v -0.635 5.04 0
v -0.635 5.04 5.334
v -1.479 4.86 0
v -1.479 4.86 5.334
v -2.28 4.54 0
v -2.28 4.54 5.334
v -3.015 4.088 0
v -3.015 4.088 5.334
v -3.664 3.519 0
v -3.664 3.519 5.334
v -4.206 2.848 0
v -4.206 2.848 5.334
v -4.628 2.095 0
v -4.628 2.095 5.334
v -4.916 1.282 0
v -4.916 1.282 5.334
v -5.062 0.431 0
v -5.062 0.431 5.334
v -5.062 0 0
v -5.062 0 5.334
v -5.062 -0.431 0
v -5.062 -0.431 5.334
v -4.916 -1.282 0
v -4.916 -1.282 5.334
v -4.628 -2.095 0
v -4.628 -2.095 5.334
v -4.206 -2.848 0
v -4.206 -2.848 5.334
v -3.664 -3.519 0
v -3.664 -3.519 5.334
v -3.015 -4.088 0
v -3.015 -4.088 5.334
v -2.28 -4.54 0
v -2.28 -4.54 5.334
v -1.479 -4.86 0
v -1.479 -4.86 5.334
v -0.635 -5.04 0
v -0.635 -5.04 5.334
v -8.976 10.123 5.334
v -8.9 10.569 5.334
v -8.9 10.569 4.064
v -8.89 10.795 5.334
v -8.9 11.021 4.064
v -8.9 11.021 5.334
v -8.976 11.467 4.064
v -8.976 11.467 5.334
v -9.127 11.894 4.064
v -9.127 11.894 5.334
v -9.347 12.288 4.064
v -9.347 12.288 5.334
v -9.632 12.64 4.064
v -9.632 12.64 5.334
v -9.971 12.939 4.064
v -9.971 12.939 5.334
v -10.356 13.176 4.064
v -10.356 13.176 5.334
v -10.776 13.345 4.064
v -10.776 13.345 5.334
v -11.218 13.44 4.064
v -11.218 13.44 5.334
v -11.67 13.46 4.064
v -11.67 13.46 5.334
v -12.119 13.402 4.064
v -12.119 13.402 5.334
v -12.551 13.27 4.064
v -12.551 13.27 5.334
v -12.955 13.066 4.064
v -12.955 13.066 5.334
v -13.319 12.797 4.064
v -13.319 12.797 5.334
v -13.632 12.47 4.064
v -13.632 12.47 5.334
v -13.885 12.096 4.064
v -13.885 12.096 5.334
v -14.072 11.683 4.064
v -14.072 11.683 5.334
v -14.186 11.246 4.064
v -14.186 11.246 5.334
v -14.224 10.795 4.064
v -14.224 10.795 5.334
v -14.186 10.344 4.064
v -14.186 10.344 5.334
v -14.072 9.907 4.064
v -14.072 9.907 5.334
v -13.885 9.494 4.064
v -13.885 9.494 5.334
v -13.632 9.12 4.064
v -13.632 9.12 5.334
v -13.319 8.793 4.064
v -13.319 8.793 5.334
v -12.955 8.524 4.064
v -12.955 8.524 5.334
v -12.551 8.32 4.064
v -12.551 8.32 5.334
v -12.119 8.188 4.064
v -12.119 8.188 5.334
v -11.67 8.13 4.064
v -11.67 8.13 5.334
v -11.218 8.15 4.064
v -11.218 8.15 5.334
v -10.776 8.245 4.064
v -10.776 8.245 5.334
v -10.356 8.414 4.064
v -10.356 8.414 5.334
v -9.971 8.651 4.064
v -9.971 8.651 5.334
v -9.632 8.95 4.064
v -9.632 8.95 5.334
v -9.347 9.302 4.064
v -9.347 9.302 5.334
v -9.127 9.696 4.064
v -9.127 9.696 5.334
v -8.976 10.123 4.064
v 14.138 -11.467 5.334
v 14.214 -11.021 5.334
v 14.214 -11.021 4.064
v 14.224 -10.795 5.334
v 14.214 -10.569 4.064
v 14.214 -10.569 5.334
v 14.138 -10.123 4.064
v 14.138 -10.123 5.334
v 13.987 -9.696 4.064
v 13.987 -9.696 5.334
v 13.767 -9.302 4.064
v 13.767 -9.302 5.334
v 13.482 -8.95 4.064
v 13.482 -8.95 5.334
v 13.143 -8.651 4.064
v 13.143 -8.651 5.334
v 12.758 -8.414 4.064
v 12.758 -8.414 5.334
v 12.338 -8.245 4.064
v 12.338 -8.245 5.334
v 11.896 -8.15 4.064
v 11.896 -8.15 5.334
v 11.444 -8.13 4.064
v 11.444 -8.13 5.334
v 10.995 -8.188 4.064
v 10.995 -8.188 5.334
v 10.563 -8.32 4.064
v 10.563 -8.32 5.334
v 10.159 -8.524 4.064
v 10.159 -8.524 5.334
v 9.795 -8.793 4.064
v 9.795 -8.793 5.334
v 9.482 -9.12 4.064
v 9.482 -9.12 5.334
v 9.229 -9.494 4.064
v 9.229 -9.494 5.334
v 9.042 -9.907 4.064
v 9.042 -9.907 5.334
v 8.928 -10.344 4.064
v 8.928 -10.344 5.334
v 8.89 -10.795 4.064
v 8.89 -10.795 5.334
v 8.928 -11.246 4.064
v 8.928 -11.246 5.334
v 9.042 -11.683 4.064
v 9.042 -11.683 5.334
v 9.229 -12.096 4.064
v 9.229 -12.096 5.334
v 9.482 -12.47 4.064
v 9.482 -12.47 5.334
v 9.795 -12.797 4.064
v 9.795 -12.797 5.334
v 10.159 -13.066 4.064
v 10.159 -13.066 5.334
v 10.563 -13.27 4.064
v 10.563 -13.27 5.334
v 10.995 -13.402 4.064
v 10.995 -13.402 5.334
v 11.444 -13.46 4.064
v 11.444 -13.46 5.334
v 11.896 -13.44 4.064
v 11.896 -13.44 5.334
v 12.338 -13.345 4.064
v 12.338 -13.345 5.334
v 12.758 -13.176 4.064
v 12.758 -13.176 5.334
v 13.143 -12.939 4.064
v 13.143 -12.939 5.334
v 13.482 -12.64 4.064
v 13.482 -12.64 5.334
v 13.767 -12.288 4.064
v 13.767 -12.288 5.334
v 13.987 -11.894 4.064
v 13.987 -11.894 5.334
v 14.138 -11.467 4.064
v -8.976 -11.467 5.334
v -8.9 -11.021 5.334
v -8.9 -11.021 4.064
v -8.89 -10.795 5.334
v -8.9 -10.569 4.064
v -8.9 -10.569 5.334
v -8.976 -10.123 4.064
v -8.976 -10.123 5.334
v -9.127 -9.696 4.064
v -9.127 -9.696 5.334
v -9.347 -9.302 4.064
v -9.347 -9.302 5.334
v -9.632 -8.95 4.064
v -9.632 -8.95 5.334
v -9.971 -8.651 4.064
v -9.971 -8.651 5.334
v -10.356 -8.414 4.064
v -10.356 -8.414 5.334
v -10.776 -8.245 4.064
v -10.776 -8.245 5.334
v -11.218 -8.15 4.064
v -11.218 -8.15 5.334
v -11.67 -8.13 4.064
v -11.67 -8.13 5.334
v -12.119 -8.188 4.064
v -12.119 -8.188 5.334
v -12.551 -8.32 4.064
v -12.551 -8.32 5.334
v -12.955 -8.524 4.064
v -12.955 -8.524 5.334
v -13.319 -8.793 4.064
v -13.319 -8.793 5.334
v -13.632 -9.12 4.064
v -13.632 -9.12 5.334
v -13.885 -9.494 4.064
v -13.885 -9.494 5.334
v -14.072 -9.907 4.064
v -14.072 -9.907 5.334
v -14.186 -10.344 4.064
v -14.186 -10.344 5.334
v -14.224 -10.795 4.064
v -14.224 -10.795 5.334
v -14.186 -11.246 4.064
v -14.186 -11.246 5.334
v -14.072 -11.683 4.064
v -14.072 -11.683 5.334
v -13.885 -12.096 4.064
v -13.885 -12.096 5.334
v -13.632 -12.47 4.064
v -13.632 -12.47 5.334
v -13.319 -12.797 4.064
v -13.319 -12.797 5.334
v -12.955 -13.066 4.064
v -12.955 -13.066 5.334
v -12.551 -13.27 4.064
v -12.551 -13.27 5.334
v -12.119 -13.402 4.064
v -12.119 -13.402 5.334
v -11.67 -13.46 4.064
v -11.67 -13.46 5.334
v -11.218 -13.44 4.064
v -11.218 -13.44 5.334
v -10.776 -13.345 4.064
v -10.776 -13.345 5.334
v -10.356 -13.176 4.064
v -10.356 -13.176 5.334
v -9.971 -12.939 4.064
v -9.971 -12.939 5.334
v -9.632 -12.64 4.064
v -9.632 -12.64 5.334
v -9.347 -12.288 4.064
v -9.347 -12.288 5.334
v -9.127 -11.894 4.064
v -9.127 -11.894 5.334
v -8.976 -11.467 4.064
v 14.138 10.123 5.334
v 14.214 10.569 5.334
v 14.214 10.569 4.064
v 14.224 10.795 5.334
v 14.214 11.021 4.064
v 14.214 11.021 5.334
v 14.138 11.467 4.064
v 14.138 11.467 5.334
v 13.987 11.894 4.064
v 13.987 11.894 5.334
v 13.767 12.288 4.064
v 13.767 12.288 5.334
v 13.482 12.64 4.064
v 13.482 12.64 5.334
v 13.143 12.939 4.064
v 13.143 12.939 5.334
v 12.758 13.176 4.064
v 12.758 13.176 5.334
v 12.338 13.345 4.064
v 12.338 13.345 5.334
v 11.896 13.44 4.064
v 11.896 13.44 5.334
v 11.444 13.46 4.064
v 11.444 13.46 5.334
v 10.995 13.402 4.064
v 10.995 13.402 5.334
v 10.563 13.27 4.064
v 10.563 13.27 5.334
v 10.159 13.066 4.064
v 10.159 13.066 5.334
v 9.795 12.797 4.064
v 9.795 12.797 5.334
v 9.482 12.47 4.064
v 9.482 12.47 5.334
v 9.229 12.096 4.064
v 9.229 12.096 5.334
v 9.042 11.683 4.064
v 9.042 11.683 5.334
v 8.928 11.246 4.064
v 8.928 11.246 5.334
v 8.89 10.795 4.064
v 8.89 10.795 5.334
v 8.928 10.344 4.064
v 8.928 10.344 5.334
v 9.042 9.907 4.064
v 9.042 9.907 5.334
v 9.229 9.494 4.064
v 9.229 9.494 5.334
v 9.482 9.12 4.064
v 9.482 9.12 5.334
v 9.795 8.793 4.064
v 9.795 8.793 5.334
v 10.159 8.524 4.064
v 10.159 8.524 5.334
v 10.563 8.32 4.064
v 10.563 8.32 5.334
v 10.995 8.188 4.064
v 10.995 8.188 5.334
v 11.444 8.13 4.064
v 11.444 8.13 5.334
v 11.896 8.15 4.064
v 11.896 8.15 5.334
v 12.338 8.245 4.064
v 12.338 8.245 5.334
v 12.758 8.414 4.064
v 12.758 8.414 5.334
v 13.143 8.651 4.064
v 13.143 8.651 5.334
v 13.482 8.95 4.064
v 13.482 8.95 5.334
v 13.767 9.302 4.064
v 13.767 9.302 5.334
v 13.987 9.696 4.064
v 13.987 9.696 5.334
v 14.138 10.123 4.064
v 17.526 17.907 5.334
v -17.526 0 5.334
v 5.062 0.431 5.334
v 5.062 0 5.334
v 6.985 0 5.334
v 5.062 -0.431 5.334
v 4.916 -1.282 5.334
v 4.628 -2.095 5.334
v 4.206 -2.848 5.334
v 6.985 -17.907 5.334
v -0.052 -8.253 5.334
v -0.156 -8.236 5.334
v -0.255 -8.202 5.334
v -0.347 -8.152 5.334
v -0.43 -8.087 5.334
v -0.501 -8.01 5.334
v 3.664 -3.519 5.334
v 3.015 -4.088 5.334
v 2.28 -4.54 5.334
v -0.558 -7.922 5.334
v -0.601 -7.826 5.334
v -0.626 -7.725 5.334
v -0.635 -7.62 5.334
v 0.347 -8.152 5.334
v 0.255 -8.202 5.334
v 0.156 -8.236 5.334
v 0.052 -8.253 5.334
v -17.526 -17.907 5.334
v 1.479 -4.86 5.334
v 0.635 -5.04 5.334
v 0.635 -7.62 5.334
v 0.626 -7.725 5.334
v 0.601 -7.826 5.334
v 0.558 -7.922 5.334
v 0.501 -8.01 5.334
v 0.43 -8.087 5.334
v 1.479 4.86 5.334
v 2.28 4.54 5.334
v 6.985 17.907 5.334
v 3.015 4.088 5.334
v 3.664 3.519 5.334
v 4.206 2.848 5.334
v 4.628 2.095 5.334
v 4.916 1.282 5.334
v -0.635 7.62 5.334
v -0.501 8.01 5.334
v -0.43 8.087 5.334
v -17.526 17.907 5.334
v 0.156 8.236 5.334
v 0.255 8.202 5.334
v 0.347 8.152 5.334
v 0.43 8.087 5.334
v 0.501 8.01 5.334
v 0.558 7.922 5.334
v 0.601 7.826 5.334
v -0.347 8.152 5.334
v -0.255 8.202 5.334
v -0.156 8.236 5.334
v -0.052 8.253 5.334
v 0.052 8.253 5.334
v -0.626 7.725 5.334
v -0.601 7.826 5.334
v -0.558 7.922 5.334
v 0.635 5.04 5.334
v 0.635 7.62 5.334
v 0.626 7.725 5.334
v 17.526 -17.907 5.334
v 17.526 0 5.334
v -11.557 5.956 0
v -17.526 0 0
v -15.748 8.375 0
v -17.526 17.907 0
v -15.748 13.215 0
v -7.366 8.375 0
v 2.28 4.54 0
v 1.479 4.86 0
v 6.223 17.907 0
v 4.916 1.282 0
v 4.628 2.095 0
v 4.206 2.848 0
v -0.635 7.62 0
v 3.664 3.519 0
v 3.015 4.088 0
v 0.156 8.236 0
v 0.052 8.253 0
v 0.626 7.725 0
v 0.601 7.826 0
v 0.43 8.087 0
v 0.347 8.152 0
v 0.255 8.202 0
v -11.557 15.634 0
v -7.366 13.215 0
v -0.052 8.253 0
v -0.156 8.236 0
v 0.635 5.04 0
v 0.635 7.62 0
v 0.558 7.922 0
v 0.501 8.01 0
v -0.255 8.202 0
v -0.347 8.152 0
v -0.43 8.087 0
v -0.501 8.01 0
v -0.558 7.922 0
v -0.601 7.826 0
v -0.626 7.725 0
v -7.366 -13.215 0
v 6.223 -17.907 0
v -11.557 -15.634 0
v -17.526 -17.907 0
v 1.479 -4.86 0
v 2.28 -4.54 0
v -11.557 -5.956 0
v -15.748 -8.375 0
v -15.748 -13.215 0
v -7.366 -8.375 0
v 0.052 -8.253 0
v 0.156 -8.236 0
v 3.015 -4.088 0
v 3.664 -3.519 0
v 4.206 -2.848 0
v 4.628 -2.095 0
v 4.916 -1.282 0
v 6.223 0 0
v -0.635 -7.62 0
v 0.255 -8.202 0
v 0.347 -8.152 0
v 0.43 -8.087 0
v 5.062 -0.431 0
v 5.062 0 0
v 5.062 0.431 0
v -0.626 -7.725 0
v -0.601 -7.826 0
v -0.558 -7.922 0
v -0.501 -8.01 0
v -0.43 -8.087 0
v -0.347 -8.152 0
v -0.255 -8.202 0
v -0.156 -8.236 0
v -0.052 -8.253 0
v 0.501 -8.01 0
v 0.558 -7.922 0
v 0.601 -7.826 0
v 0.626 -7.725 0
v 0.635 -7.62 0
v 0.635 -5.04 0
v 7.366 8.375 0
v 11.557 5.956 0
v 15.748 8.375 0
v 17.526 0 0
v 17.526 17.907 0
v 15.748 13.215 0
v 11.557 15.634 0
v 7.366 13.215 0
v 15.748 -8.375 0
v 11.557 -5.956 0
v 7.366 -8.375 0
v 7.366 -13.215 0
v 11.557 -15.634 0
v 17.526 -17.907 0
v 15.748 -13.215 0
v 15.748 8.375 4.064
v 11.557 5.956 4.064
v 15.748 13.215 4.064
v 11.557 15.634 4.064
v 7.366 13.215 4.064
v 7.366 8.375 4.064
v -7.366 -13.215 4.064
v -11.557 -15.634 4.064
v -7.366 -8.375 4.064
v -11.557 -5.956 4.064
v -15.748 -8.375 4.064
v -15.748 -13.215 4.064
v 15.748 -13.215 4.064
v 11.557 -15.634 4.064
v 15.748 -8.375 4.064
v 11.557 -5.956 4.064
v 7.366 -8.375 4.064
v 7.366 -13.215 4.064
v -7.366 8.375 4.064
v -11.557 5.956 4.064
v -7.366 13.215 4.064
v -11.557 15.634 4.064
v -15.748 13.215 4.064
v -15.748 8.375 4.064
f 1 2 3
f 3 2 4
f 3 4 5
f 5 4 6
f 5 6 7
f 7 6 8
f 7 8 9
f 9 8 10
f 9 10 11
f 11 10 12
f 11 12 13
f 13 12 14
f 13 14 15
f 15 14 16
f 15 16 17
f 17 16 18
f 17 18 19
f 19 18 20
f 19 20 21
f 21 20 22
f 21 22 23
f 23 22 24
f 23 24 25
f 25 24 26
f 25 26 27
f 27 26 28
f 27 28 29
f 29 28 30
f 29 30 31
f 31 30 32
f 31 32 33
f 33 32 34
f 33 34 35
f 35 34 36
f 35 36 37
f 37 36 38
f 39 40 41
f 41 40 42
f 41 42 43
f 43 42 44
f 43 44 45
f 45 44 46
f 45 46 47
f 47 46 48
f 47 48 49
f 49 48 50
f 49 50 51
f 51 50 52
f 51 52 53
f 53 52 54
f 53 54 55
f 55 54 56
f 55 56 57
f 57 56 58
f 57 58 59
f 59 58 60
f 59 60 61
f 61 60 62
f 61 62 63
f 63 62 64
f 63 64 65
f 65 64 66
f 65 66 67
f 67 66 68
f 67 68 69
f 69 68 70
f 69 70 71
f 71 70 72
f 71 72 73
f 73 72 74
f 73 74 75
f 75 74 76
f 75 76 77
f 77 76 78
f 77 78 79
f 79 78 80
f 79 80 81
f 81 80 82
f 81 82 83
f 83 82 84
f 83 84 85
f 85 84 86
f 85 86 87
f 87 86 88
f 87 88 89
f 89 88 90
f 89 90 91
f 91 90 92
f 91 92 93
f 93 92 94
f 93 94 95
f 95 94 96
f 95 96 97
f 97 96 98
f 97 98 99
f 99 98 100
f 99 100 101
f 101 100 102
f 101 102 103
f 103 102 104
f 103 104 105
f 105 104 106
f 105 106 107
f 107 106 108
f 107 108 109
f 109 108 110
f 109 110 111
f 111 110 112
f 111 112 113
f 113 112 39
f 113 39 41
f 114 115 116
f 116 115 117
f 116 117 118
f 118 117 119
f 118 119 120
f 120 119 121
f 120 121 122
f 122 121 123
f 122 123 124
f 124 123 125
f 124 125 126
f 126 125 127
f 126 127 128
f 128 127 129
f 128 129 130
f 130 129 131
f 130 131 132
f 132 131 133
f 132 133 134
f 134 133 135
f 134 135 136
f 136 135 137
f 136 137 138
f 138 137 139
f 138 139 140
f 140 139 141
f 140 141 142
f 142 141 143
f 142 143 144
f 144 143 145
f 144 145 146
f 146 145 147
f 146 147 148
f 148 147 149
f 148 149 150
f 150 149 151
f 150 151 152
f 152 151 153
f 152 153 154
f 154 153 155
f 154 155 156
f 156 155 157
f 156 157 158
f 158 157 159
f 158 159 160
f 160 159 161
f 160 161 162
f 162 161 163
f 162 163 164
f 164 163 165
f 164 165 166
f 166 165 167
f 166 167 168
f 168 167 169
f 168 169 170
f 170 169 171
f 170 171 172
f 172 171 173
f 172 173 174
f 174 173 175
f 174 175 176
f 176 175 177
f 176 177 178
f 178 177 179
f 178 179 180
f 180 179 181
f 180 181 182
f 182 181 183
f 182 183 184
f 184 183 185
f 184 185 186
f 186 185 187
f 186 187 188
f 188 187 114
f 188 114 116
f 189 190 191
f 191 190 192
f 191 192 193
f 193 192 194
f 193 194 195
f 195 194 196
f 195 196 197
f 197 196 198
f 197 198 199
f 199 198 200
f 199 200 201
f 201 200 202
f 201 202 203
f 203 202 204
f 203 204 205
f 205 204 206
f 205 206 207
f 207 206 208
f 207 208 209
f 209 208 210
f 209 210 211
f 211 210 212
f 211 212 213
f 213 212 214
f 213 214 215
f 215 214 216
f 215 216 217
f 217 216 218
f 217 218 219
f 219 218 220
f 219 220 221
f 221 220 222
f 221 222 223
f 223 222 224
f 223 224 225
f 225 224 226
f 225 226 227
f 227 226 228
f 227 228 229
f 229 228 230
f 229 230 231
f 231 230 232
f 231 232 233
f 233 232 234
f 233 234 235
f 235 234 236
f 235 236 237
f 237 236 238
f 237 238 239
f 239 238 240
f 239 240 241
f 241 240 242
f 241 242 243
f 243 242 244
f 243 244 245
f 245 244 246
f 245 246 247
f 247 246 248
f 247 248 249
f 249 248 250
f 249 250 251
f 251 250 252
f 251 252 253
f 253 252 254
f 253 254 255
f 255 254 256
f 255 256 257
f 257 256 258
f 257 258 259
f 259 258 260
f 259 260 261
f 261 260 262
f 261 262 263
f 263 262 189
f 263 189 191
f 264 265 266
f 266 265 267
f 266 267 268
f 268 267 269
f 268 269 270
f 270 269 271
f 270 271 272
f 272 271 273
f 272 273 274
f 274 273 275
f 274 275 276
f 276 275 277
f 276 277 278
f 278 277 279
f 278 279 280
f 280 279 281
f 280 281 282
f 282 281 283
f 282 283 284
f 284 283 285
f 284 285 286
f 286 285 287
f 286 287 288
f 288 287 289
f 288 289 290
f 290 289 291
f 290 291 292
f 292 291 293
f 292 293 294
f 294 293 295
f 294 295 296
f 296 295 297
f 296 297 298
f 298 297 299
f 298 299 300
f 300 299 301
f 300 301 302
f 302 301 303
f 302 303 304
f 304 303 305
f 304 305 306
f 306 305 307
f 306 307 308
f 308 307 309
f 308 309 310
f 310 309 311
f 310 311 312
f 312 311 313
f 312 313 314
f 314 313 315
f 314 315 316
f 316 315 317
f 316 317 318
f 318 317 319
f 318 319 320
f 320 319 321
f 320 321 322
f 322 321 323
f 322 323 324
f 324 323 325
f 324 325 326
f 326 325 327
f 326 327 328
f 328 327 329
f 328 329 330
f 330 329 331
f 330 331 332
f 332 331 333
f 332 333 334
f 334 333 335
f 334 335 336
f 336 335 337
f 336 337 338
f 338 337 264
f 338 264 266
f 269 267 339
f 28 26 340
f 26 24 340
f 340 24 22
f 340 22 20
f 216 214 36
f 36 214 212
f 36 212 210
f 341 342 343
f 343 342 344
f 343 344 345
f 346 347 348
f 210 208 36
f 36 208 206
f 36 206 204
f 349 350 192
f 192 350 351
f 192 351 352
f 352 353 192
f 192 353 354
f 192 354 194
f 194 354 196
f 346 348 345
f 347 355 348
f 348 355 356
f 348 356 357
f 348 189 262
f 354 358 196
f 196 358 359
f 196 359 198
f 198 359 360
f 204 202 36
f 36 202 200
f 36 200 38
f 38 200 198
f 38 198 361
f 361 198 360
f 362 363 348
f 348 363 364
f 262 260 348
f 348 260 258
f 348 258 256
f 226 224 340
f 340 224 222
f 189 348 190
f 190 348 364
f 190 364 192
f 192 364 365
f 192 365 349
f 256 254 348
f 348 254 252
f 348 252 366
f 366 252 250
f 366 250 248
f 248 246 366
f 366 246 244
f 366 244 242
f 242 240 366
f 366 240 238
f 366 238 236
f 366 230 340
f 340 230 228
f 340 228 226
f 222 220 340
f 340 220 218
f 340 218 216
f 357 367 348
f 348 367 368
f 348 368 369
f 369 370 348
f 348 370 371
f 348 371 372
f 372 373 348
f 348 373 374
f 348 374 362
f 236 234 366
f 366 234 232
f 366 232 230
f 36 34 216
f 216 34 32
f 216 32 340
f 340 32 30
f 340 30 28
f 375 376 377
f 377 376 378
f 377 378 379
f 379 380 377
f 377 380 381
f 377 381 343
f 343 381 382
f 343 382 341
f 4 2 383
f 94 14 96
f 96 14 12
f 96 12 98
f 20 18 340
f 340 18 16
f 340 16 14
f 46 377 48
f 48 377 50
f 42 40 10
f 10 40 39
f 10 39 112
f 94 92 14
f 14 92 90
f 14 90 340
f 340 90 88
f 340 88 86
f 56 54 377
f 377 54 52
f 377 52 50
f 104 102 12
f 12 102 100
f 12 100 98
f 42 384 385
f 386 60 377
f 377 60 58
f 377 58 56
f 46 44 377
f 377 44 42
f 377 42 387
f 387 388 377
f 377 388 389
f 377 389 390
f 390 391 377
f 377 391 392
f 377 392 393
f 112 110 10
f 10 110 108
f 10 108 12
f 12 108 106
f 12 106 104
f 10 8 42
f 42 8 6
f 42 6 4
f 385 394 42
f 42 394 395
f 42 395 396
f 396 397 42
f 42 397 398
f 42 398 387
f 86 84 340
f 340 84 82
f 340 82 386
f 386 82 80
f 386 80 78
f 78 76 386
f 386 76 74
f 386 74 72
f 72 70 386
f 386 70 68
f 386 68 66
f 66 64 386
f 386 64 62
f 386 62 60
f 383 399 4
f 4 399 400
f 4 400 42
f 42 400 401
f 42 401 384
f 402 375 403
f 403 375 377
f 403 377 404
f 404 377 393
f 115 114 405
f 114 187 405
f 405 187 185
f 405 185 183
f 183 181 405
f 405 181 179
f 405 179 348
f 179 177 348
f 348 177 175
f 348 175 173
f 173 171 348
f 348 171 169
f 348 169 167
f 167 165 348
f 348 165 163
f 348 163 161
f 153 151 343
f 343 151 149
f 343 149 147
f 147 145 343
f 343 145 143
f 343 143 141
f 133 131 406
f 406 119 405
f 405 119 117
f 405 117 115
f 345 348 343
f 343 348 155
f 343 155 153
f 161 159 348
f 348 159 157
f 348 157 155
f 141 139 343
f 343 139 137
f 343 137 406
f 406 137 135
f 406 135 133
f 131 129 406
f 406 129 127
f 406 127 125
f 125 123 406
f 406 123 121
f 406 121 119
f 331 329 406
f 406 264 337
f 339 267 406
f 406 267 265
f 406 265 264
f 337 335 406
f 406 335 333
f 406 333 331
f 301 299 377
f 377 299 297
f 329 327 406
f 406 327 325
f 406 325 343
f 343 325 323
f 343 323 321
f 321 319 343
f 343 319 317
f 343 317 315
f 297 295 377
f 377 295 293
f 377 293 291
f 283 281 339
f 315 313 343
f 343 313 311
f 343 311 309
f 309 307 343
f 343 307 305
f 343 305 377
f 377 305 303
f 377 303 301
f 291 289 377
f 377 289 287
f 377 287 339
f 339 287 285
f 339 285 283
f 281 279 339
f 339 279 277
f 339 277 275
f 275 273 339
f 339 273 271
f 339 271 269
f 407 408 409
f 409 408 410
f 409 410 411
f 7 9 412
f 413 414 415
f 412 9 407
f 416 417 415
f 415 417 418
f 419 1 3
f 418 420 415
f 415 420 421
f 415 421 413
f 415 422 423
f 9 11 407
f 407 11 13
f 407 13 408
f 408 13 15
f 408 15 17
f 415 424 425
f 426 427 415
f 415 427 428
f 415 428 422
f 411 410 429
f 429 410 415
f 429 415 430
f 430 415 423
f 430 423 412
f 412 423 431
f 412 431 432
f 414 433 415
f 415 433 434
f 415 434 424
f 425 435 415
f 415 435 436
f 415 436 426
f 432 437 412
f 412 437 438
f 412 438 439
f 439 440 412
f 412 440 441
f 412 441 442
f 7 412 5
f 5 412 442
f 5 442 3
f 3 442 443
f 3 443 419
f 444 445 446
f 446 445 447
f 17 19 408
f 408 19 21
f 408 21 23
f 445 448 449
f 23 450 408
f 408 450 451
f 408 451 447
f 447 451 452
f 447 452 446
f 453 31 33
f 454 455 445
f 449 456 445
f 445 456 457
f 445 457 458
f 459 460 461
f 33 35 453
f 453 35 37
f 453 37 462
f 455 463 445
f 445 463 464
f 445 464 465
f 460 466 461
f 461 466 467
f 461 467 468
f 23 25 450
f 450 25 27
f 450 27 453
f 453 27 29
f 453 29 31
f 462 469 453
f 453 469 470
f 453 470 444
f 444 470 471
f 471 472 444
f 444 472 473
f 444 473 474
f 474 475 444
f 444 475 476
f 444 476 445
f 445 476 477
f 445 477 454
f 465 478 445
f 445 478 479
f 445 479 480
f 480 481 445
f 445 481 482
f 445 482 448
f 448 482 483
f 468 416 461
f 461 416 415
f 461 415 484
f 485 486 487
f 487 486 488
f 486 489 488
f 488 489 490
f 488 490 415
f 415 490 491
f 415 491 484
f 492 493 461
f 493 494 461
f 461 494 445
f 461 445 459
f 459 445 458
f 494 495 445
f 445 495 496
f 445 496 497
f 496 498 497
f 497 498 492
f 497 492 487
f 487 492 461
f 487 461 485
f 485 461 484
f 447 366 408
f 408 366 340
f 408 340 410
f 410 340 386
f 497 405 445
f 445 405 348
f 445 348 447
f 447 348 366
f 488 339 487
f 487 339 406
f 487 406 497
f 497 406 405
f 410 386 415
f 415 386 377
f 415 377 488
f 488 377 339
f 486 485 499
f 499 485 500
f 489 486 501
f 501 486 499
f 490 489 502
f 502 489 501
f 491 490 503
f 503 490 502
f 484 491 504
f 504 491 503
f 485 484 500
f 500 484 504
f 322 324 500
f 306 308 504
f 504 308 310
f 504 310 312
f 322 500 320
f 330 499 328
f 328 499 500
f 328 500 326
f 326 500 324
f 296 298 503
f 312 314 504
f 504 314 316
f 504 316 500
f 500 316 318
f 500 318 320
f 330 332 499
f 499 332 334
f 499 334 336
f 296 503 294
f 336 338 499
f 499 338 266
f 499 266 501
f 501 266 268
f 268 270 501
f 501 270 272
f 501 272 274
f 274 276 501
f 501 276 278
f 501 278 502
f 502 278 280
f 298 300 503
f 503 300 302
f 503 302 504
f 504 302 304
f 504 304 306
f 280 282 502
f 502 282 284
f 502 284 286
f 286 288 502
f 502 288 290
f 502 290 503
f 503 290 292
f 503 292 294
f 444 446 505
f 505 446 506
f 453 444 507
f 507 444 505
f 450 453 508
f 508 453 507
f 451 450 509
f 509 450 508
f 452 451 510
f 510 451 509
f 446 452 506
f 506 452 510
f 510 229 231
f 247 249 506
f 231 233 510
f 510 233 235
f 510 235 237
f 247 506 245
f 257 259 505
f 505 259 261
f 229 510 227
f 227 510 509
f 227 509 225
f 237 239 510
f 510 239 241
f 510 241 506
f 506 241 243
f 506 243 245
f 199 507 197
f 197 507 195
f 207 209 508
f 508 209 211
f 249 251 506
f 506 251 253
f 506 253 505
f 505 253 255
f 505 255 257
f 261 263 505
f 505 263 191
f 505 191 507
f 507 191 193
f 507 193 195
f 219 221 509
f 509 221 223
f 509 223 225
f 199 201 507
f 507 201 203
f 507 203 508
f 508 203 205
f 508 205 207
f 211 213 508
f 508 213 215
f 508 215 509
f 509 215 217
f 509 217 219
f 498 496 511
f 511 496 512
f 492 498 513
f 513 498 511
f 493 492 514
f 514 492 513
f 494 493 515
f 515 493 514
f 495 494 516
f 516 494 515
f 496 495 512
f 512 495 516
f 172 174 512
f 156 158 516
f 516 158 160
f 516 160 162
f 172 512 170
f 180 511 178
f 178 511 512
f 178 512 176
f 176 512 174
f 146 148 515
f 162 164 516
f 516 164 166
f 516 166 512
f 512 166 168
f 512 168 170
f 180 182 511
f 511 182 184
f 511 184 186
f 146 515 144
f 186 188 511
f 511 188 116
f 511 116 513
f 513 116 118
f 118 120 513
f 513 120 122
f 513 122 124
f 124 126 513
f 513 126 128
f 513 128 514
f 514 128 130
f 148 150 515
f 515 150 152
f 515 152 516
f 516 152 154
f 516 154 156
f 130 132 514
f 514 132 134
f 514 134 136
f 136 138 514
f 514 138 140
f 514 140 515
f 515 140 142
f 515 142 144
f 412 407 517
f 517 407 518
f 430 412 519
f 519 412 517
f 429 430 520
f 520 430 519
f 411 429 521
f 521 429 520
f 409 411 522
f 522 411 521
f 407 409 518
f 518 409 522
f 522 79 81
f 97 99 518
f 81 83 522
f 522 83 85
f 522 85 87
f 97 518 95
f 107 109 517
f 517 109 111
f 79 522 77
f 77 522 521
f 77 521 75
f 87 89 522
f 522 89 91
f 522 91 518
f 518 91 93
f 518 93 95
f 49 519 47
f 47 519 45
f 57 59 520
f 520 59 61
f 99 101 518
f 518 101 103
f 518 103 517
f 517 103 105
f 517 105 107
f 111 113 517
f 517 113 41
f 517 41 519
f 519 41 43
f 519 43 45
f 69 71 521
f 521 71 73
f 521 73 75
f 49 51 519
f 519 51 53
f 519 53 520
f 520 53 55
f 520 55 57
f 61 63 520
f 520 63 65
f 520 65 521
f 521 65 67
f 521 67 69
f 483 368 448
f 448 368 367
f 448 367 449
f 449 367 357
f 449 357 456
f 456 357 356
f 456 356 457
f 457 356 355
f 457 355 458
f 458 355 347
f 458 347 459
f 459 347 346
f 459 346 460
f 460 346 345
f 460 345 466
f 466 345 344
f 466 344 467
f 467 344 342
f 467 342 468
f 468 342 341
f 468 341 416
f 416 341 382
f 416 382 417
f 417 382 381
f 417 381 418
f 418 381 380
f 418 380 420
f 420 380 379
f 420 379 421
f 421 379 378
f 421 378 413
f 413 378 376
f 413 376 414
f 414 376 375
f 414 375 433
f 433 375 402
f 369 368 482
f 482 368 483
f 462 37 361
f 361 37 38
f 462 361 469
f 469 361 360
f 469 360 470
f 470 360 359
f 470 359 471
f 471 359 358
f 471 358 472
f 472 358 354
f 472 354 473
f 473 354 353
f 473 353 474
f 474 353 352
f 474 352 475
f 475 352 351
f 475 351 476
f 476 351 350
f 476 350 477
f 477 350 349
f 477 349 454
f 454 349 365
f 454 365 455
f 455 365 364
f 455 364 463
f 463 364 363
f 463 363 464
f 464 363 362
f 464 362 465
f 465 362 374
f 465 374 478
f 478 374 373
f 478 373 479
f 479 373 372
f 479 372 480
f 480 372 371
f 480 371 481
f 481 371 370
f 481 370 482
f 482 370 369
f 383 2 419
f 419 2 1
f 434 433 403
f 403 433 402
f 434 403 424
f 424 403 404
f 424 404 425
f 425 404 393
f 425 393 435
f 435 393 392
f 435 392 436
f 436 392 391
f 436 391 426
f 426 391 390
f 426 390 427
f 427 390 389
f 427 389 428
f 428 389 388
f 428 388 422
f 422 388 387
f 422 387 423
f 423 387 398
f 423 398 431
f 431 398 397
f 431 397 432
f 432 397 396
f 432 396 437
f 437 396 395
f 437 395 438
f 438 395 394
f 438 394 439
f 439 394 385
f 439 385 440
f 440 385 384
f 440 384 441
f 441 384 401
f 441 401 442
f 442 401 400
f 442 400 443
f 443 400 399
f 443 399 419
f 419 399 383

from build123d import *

# Parameters (mm, degrees)
SKETCH1_W           = 35.052
SKETCH1_H           = 35.814
SKETCH1_R           = 2.667
BOSS_EXTRUDE1_DEPTH = 5.334
CUT_EXTRUDE1_DEPTH  = 4.064
SKETCH3_R           = 5.08
CUT_EXTRUDE2_DEPTH  = 6.334
CUT_EXTRUDE3_DEPTH  = 6.334


with BuildPart() as part:
    # Sketch1 → Boss-Extrude1 (new body)
    with BuildSketch(Plane.XY):
        Rectangle(SKETCH1_W, SKETCH1_H)
        with Locations((-11.557, 10.795)):
            Circle(SKETCH1_R, mode=Mode.SUBTRACT)
        with Locations((11.557, 10.795)):
            Circle(SKETCH1_R, mode=Mode.SUBTRACT)
        with Locations((11.557, -10.795)):
            Circle(SKETCH1_R, mode=Mode.SUBTRACT)
        with Locations((-11.557, -10.795)):
            Circle(SKETCH1_R, mode=Mode.SUBTRACT)
    extrude(amount=BOSS_EXTRUDE1_DEPTH)

    # Sketch2 → Cut-Extrude1 (cut)
    with BuildSketch(Plane(origin=(0, 0, 0), x_dir=(-1, 0, 0), z_dir=(0, 0, -1))):
        Polygon((-11.557, 5.955650044), (-7.366, 8.375325022), (-7.366, 13.214674978), (-11.557, 15.634349956), (-15.748, 13.214674978), (-15.748, 8.375325022), align=None)
        Polygon((-11.557, -15.634349956), (-7.366, -13.214674978), (-7.366, -8.375325022), (-11.557, -5.955650044), (-15.748, -8.375325022), (-15.748, -13.214674978), align=None)
        Polygon((11.557, -15.634349956), (15.748, -13.214674978), (15.748, -8.375325022), (11.557, -5.955650044), (7.366, -8.375325022), (7.366, -13.214674978), align=None)
        Polygon((11.557, 5.955650044), (15.748, 8.375325022), (15.748, 13.214674978), (11.557, 15.634349956), (7.366, 13.214674978), (7.366, 8.375325022), align=None)
    extrude(amount=-CUT_EXTRUDE1_DEPTH, mode=Mode.SUBTRACT)

    # Sketch3 → Cut-Extrude2 (cut, through all)
    with BuildSketch(Plane.XY.offset(5.334)):
        Circle(SKETCH3_R)
    extrude(amount=-CUT_EXTRUDE2_DEPTH, mode=Mode.SUBTRACT)

    # Sketch4 → Cut-Extrude3 (cut, through all)
    with BuildSketch(Plane.XY.offset(5.334)):
        with BuildLine():
            Line((-0.635, -7.62), (-0.635, 7.62))
            ThreePointArc((-0.635, 7.62), (0, 8.255), (0.635, 7.62))
            Line((0.635, 7.62), (0.635, -7.62))
            ThreePointArc((0.635, -7.62), (0, -8.255), (-0.635, -7.62))
        make_face()
    extrude(amount=-CUT_EXTRUDE3_DEPTH, mode=Mode.SUBTRACT)


solid = part.part
